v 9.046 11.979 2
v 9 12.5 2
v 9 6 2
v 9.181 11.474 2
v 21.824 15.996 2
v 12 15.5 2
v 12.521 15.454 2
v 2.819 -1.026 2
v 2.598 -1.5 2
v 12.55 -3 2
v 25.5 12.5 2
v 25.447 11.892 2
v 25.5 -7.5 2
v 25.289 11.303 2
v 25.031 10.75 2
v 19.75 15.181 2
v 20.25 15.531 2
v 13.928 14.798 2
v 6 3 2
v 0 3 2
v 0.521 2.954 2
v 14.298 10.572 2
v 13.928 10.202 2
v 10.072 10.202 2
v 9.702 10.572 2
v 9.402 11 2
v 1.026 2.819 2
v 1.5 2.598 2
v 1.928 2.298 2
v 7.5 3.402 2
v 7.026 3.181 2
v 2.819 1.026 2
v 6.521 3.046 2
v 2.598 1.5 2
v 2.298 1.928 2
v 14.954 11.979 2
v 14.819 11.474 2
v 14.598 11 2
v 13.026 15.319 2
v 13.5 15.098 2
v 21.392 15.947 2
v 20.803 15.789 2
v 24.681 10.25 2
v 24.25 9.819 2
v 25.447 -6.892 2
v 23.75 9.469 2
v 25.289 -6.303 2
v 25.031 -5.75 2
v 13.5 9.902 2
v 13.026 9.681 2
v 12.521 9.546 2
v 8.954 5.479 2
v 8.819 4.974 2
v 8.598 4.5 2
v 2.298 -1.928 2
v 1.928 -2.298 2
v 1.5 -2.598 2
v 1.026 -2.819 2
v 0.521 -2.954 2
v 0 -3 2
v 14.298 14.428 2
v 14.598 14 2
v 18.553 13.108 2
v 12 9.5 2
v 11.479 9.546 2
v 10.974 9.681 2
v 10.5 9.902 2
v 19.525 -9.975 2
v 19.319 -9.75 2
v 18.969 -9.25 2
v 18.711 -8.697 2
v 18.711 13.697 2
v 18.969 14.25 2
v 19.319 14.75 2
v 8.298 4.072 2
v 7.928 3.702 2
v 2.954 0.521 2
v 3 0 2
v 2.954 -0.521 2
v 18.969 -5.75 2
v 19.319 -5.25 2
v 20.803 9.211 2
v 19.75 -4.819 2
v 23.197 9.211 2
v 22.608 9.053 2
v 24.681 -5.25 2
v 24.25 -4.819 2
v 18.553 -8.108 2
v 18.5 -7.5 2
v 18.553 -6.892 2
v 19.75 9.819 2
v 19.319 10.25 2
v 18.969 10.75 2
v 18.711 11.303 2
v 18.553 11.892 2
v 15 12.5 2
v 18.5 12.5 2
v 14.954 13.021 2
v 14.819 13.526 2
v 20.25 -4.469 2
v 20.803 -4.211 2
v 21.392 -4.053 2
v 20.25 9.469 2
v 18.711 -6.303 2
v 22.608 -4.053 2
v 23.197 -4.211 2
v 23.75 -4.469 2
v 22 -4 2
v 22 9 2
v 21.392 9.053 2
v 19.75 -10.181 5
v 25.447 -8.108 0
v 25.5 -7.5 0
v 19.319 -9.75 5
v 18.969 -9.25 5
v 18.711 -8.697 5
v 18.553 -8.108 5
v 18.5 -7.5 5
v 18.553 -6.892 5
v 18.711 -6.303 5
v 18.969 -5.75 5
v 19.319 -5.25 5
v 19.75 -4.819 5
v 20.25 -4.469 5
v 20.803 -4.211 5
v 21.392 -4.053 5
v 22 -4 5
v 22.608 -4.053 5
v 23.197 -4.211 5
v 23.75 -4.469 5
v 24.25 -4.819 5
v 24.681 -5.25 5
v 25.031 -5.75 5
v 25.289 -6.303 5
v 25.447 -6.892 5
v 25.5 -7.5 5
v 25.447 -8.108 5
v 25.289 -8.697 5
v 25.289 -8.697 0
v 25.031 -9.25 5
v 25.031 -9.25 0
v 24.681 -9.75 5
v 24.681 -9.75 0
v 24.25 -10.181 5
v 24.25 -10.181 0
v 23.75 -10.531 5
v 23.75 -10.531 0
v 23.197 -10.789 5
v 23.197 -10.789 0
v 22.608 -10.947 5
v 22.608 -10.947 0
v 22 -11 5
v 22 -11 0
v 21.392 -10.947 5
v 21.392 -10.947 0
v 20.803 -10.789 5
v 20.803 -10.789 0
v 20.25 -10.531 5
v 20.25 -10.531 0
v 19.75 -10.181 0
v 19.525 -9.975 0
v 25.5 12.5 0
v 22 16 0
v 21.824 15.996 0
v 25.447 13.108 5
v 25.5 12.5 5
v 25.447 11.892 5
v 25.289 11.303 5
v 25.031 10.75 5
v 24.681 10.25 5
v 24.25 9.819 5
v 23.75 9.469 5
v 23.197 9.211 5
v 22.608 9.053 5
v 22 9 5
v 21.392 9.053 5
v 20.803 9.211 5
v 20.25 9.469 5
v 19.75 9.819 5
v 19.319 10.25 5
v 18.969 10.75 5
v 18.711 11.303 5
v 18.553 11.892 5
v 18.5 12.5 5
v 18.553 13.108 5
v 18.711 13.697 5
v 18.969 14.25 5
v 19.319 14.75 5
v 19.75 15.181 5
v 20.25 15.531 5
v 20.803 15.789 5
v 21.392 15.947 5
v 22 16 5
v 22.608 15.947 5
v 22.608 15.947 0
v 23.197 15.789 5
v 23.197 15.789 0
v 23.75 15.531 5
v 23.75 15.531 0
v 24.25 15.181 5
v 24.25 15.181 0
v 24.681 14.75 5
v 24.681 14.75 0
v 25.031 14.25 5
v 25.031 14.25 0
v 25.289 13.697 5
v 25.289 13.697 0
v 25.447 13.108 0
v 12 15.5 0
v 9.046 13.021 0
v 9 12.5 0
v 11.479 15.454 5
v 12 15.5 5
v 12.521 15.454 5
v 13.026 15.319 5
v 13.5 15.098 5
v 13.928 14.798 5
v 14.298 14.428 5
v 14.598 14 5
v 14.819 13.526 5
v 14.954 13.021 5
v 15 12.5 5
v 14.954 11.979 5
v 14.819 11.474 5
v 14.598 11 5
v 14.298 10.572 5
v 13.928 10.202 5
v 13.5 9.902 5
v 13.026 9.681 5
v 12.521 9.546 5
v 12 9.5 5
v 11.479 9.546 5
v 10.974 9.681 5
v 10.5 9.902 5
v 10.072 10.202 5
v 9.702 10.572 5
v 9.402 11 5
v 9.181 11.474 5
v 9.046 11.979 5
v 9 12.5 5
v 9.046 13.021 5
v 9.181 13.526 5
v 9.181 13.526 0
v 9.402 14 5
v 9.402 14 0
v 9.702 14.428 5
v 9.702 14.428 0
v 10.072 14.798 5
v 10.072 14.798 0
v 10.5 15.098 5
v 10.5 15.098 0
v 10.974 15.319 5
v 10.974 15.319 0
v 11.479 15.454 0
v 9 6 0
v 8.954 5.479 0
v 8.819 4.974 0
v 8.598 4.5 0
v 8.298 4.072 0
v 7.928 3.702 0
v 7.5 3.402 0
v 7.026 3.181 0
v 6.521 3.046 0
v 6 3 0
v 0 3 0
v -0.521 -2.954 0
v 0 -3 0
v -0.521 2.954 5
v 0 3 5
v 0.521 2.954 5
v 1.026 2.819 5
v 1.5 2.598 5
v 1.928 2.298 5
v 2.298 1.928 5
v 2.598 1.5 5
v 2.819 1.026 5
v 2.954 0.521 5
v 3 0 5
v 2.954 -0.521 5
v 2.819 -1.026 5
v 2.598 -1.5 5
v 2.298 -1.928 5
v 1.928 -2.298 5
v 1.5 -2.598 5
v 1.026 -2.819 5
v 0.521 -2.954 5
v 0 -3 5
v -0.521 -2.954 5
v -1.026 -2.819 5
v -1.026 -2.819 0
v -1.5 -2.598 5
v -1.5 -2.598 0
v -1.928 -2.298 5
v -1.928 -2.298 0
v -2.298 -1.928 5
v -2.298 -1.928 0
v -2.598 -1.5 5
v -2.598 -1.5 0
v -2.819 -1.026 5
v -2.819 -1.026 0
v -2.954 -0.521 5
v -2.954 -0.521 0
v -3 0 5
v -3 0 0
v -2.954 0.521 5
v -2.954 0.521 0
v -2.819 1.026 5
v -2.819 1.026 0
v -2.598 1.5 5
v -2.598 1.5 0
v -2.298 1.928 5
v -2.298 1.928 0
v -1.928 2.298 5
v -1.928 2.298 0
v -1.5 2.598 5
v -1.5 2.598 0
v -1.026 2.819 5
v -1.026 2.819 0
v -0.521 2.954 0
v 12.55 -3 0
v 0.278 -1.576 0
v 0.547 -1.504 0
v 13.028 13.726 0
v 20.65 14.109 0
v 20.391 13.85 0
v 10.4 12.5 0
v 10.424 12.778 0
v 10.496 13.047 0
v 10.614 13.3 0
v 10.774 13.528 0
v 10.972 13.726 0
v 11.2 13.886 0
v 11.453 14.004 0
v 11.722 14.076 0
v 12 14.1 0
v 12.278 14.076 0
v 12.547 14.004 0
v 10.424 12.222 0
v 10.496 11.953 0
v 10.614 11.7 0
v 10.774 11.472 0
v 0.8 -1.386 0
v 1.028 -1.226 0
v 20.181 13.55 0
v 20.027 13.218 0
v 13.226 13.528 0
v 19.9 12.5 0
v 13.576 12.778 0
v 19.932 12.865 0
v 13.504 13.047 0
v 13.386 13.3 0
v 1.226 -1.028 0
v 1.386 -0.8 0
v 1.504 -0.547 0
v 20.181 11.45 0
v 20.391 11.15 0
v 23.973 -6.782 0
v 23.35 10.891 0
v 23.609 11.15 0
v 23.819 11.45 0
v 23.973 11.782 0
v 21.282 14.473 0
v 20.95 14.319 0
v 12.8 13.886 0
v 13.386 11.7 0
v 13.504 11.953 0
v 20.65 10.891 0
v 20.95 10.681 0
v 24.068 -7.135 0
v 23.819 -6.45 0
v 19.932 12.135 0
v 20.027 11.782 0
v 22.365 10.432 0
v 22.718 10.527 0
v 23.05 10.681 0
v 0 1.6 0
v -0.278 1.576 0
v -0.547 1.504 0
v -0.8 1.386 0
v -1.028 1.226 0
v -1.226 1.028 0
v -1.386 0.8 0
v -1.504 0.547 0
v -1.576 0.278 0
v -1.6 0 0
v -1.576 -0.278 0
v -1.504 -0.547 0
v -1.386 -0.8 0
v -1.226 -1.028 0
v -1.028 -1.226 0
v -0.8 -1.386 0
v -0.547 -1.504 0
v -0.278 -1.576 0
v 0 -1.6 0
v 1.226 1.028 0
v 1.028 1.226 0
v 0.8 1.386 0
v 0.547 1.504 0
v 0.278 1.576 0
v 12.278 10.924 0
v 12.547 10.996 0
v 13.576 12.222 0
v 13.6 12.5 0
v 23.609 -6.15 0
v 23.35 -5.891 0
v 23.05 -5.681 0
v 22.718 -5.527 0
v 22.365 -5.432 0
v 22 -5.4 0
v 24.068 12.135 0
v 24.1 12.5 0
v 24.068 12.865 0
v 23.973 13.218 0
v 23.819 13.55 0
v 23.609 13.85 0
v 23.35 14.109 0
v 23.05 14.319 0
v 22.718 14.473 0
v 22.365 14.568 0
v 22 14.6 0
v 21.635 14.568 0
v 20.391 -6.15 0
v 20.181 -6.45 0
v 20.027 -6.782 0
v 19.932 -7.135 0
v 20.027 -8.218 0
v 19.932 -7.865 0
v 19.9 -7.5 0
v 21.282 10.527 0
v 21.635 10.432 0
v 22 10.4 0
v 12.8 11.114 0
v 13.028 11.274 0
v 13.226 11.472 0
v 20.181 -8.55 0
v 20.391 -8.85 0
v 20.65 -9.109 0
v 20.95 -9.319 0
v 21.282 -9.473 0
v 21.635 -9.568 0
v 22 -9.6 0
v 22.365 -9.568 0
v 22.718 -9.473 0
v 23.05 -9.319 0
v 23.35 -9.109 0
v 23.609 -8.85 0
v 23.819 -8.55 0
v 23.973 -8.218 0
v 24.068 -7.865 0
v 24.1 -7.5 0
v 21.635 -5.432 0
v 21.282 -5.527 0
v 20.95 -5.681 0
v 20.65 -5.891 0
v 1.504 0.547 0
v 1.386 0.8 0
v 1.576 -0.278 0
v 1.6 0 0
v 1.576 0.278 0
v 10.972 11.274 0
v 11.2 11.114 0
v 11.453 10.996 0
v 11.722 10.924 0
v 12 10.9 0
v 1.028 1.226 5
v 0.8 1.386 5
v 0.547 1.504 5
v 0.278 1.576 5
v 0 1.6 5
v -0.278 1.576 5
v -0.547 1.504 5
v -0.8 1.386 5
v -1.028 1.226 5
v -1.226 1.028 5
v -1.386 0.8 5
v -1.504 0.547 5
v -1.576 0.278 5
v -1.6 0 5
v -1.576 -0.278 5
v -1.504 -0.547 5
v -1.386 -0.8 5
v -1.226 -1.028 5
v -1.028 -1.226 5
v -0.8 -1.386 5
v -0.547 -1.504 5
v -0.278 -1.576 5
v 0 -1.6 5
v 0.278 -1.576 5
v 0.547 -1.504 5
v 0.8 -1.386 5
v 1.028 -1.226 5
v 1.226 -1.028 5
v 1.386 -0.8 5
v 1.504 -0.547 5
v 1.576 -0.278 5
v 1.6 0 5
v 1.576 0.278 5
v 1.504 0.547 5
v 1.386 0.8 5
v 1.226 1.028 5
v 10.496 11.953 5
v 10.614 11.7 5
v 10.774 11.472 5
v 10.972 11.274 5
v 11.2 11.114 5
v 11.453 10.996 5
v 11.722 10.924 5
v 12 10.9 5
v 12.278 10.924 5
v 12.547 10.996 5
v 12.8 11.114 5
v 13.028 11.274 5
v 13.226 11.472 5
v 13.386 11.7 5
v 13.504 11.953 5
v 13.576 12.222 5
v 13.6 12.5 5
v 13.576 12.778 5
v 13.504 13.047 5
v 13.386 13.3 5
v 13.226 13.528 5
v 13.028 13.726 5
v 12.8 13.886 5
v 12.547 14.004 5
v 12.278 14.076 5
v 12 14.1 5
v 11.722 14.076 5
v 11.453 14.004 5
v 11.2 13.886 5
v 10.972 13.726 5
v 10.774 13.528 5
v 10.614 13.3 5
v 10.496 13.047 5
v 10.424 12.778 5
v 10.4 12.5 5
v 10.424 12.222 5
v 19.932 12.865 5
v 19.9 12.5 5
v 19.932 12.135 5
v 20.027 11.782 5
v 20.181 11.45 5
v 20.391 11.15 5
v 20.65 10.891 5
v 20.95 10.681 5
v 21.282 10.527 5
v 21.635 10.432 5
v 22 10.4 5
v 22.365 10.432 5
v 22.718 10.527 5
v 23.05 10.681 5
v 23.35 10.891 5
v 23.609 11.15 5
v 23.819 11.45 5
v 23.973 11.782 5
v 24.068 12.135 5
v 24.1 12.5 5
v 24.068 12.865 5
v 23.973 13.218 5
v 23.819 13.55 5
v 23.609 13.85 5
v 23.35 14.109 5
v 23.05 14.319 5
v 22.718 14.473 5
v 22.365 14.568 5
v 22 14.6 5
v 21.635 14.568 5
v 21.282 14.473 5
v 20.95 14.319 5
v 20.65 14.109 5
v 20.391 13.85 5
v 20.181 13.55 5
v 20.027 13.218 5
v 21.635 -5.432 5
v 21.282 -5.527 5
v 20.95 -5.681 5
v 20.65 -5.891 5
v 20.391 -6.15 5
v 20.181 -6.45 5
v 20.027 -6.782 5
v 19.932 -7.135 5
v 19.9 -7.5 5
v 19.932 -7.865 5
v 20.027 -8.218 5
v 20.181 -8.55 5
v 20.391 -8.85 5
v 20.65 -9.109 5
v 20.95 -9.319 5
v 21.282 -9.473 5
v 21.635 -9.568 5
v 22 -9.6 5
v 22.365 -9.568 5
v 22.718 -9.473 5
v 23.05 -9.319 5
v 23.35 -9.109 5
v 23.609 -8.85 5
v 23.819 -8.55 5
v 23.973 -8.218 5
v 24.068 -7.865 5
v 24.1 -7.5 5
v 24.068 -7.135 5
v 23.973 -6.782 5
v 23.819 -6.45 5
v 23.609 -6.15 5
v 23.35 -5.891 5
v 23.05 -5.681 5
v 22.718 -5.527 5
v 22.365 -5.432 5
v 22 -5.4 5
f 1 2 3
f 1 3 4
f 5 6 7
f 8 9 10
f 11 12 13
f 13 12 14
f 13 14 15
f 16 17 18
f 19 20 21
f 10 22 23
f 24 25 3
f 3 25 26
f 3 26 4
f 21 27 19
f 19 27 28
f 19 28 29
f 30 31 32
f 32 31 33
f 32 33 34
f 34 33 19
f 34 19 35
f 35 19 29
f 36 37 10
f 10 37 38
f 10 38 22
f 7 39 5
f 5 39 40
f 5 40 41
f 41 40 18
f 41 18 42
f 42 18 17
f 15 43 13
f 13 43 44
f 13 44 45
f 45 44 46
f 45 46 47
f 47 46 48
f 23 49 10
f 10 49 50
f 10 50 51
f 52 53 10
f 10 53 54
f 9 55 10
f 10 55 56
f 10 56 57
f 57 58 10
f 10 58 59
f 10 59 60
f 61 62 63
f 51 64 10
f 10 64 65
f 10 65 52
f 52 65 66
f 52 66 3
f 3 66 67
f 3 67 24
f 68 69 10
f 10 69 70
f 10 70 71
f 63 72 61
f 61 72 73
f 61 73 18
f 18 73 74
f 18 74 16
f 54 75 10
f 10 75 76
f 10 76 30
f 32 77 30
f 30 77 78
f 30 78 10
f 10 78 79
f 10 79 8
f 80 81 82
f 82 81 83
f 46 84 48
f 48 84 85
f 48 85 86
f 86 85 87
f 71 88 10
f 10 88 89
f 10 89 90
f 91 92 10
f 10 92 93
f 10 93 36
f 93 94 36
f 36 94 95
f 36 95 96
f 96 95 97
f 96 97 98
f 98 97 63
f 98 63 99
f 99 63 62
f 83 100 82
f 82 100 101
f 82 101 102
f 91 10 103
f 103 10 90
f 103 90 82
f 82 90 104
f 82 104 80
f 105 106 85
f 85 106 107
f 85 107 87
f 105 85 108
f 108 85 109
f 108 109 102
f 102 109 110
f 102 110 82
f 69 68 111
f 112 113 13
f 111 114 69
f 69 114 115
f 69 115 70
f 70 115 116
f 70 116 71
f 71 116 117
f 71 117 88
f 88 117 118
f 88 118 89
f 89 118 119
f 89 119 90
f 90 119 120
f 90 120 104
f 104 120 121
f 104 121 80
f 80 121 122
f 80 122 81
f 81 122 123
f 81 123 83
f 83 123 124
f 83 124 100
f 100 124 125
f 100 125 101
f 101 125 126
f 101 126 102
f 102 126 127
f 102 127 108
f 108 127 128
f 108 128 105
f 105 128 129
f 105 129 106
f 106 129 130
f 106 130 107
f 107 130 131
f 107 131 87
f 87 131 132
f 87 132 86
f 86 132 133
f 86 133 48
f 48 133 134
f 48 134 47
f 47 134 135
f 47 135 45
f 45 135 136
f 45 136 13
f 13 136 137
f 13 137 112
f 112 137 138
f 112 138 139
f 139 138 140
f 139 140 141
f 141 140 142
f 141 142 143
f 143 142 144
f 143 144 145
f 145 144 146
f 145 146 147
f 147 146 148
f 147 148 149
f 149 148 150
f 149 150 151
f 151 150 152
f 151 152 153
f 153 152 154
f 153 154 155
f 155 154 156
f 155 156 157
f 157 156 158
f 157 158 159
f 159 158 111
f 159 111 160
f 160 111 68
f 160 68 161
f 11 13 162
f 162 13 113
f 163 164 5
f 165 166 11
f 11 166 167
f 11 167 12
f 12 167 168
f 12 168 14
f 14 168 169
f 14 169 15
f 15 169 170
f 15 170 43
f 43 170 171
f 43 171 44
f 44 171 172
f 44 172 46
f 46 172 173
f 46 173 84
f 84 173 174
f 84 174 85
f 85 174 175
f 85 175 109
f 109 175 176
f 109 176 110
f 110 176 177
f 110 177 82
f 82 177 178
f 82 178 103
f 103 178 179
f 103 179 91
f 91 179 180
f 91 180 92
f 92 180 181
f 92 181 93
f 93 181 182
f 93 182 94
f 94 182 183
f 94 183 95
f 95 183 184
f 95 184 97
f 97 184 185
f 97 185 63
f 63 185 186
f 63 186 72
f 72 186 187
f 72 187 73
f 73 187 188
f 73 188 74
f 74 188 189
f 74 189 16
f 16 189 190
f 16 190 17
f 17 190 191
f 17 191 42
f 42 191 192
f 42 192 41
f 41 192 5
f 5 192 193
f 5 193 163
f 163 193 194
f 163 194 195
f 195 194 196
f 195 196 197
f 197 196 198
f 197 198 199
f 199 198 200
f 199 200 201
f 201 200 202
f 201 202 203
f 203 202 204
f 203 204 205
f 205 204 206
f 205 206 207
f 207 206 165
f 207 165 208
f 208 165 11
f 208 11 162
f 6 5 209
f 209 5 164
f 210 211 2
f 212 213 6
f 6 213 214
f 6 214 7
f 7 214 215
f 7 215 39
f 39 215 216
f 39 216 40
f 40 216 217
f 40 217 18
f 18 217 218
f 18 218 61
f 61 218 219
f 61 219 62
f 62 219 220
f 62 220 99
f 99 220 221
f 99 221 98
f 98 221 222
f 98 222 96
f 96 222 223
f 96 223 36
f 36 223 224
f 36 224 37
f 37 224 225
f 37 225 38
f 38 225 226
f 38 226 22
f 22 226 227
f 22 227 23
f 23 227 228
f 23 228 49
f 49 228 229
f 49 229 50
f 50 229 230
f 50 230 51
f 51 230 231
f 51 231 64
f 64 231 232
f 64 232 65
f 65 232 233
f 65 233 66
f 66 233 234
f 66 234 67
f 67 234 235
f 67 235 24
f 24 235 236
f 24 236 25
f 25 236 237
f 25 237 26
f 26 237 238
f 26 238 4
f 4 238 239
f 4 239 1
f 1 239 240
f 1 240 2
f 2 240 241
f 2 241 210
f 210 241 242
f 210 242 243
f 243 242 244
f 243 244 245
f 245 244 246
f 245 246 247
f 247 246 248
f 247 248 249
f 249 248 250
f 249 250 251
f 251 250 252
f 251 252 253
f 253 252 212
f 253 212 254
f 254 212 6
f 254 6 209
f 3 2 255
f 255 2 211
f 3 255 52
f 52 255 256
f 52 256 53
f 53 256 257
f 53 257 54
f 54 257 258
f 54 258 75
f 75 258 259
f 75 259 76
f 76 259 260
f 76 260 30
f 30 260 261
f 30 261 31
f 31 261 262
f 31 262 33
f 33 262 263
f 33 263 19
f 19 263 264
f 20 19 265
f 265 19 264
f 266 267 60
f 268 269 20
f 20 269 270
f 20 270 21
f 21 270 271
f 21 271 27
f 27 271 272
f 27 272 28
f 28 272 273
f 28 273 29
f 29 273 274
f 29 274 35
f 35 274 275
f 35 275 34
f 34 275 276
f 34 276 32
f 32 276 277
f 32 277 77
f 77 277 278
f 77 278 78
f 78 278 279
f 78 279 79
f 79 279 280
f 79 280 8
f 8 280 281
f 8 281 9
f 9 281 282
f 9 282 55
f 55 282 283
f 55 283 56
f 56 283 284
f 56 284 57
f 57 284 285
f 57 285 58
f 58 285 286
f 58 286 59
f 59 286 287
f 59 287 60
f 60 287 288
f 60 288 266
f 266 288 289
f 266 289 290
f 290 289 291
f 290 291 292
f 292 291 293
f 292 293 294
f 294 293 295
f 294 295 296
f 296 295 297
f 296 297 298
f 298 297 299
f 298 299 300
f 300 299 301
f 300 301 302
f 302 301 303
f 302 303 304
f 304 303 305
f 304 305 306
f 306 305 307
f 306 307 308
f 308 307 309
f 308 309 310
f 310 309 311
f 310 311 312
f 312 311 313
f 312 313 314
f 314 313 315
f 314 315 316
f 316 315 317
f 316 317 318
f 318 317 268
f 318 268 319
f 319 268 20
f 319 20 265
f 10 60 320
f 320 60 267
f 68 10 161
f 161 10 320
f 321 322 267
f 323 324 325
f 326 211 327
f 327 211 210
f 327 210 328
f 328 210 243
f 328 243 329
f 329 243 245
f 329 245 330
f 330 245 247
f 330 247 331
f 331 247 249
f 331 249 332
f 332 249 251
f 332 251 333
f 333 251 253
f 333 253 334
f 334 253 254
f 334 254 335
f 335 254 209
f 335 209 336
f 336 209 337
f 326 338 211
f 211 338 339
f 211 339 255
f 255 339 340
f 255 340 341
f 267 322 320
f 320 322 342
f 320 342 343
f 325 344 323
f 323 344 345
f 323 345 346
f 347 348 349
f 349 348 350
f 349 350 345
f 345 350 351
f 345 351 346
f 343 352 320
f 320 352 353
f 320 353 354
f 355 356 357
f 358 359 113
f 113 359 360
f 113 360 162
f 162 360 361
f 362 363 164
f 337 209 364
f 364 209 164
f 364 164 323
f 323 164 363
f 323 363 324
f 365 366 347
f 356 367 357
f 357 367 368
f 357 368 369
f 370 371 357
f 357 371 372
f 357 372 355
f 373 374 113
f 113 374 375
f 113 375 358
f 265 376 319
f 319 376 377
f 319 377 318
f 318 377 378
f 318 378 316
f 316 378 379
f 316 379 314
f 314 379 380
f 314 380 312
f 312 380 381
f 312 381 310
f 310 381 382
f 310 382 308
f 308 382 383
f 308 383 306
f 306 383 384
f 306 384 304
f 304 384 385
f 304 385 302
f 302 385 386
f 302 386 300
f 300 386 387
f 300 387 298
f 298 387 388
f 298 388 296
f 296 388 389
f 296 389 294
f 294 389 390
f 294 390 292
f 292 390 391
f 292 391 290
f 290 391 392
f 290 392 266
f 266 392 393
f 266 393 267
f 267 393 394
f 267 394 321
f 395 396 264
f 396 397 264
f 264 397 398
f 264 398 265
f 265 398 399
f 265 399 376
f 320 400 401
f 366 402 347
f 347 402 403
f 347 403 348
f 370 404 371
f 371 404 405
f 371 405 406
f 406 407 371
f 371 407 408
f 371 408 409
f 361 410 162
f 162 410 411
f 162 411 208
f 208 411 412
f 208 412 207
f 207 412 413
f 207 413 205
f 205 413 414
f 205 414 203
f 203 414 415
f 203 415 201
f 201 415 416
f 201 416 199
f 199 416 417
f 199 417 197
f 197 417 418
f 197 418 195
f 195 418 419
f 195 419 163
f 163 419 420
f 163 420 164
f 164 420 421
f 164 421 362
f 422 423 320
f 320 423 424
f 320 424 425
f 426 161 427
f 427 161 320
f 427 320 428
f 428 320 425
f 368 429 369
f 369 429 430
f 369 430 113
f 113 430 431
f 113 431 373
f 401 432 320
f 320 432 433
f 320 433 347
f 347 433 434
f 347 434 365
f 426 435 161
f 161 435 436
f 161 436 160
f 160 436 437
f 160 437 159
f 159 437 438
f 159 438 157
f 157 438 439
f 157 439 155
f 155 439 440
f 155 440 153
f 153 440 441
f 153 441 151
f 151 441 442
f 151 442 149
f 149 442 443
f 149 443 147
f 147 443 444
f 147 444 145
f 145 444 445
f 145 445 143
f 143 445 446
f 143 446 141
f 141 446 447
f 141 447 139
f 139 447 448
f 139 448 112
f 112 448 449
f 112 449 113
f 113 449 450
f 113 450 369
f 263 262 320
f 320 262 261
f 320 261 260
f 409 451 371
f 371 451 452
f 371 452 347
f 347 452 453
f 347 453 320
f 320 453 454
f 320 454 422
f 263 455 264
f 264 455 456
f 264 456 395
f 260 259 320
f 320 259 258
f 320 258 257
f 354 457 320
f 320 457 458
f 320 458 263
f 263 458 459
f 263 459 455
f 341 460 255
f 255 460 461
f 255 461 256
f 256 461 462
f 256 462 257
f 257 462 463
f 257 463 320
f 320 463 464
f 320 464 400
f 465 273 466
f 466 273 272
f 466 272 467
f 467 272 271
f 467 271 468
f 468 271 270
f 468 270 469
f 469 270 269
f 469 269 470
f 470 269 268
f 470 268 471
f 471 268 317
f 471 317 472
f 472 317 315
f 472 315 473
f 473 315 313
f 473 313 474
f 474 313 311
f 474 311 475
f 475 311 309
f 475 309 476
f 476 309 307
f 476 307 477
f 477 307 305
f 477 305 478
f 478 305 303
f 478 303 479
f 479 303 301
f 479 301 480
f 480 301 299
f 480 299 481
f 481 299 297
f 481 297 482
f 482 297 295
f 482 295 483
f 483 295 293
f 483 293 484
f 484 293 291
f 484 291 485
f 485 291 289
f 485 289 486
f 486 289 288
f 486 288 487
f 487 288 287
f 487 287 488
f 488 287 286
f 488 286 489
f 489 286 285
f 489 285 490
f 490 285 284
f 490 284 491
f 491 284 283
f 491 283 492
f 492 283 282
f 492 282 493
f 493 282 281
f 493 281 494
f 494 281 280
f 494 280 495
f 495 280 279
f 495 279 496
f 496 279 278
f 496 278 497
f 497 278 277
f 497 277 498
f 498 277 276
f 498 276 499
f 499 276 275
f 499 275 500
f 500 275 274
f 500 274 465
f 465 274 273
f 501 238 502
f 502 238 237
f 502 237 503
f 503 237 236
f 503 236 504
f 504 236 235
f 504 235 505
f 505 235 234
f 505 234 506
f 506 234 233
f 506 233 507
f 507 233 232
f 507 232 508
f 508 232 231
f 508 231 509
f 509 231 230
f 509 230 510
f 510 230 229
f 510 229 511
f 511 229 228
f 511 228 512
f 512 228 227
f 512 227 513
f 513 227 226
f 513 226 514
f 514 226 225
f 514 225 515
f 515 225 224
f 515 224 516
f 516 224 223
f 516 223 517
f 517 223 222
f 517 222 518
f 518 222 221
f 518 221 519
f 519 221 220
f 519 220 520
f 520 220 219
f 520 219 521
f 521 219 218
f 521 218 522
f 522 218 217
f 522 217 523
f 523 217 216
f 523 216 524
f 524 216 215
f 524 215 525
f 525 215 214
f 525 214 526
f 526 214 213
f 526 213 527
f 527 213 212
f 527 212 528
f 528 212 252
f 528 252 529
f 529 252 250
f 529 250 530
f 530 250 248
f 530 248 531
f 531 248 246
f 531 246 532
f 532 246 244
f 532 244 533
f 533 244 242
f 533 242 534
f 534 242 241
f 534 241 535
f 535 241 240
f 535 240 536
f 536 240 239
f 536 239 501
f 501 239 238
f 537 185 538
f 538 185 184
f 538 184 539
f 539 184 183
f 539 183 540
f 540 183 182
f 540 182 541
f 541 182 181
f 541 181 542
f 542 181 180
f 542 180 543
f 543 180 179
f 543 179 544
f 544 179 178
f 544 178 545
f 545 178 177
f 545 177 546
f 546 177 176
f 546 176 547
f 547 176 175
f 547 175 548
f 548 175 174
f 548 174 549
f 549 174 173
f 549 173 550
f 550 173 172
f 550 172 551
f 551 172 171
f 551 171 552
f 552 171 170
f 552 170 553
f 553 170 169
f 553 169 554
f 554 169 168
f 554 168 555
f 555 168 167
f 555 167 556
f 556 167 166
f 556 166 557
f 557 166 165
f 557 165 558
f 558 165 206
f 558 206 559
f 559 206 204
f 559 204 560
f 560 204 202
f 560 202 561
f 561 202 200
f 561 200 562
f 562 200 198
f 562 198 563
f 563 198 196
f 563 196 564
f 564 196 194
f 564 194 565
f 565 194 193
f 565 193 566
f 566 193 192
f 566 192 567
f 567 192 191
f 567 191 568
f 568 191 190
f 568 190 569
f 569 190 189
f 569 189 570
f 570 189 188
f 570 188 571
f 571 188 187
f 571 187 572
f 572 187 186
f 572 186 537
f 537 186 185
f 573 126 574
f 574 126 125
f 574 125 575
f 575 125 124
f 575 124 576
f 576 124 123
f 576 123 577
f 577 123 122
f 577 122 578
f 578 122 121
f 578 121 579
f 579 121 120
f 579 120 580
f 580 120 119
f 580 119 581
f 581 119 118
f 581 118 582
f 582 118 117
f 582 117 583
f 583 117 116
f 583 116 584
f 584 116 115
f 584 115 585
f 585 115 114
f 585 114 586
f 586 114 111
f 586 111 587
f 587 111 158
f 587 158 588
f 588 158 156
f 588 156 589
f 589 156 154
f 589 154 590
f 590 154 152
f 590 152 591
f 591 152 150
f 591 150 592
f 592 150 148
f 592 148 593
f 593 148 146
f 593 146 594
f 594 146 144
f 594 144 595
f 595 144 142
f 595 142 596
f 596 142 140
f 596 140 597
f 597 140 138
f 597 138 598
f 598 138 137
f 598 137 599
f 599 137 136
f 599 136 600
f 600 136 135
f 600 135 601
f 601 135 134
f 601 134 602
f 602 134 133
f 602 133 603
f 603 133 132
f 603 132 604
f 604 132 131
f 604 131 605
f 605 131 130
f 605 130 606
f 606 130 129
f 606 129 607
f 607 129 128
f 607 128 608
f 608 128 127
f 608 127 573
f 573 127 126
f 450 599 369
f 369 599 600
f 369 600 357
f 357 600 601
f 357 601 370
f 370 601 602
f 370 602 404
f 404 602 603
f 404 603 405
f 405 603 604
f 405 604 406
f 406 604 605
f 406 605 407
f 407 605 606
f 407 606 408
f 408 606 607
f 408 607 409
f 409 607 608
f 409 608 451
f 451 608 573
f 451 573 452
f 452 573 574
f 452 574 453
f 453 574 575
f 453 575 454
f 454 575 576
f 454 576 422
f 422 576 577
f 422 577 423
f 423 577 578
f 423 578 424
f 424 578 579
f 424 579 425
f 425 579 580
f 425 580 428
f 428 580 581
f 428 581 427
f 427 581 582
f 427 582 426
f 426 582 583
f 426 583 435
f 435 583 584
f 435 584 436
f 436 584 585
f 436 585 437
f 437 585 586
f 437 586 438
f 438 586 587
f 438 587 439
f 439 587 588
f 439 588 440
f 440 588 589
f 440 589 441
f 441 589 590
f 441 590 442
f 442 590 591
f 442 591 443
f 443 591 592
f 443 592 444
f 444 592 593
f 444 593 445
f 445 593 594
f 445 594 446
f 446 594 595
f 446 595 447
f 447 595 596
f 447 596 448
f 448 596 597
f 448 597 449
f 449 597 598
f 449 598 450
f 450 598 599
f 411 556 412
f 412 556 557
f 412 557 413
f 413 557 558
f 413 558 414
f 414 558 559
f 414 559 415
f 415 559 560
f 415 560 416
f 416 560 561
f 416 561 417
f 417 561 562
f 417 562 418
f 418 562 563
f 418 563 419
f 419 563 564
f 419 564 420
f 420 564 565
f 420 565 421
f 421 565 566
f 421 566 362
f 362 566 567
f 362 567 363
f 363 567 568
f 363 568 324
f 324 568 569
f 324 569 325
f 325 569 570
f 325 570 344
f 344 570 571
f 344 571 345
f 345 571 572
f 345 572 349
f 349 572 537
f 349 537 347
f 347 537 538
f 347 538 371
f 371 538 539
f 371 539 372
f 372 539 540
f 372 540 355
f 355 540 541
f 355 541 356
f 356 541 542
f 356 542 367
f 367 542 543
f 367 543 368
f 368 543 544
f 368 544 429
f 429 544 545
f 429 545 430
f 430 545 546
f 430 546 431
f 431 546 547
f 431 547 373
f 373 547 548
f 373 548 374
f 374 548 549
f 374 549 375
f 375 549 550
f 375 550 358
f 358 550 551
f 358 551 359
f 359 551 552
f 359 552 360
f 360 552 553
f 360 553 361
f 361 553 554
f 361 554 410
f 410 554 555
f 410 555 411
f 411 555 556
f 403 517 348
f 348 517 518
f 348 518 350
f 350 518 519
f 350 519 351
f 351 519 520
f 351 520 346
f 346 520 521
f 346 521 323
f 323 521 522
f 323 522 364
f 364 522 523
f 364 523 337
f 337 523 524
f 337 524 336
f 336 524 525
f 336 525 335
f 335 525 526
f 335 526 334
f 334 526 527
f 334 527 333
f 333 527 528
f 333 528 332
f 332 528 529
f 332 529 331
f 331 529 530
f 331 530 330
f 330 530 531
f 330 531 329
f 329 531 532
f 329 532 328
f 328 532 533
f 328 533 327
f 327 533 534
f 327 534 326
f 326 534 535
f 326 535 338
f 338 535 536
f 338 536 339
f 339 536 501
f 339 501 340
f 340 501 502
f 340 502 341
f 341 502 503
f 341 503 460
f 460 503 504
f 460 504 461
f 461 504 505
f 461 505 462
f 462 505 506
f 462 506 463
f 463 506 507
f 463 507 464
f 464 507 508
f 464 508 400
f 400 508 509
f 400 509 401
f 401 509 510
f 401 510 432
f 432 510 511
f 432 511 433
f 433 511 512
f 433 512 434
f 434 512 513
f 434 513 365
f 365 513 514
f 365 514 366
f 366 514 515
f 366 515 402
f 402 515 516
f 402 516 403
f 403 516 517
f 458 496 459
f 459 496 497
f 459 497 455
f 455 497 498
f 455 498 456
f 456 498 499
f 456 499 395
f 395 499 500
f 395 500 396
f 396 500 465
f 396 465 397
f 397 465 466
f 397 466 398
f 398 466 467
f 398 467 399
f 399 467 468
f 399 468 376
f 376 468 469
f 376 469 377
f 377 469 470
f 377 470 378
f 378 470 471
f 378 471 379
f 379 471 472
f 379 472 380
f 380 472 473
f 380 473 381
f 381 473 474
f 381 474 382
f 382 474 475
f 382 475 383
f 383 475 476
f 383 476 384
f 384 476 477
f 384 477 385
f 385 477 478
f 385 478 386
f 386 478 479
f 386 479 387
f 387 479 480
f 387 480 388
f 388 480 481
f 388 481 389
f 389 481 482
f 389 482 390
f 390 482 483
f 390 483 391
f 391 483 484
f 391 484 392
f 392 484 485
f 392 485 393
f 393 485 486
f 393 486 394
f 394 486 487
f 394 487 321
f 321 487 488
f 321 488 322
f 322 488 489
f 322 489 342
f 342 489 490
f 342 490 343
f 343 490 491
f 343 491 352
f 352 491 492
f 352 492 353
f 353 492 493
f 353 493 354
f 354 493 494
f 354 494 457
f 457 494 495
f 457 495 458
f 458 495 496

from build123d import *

# Parameters (mm, degrees)
BOSS_EXTRUDE1_DEPTH = 2
SKETCH2_R           = 3
SKETCH2_R_2         = 3.5
BOSS_EXTRUDE2_DEPTH = 3
SKETCH3_R           = 1.6
SKETCH3_R_2         = 2.1
CUT_EXTRUDE1_DEPTH  = 6


with BuildPart() as part:
    # Sketch1 → Boss-Extrude1 (new body)
    with BuildSketch(Plane.XY):
        with BuildLine():
            Line((0, 3), (6, 3))
            ThreePointArc((6, 3), (8.121320344, 3.878679656), (9, 6))
            Line((9, 6), (9, 12.5))
            ThreePointArc((9, 12.5), (9.878679656, 14.621320344), (12, 15.5))
            Line((12, 15.5), (21.823666576, 15.995555253))
            ThreePointArc((21.823666576, 15.995555253), (24.411724799, 15.036450964), (25.5, 12.5))
            Line((25.5, 12.5), (25.5, -7.5))
            ThreePointArc((25.5, -7.5), (23.339392013, -10.733578364), (19.525126266, -9.974873734))
            Line((19.525126266, -9.974873734), (12.550252532, -3))
            Line((12.550252532, -3), (0, -3))
            ThreePointArc((0, -3), (-3, 0), (0, 3))
        make_face()
    extrude(amount=BOSS_EXTRUDE1_DEPTH)

    # Sketch2 → Boss-Extrude2 (add)
    with BuildSketch(Plane.XY.offset(2)):
        Circle(SKETCH2_R)
        with Locations((12, 12.5)):
            Circle(SKETCH2_R)
        with Locations((22, 12.5)):
            Circle(SKETCH2_R_2)
        with Locations((22, -7.5)):
            Circle(SKETCH2_R_2)
    extrude(amount=BOSS_EXTRUDE2_DEPTH)

    # Sketch3 → Cut-Extrude1 (cut, through all)
    with BuildSketch(Plane.XY.offset(5)):
        Circle(SKETCH3_R)
        with Locations((12, 12.5)):
            Circle(SKETCH3_R)
        with Locations((22, 12.5)):
            Circle(SKETCH3_R_2)
        with Locations((22, -7.5)):
            Circle(SKETCH3_R_2)
    extrude(amount=-CUT_EXTRUDE1_DEPTH, mode=Mode.SUBTRACT)


solid = part.part
